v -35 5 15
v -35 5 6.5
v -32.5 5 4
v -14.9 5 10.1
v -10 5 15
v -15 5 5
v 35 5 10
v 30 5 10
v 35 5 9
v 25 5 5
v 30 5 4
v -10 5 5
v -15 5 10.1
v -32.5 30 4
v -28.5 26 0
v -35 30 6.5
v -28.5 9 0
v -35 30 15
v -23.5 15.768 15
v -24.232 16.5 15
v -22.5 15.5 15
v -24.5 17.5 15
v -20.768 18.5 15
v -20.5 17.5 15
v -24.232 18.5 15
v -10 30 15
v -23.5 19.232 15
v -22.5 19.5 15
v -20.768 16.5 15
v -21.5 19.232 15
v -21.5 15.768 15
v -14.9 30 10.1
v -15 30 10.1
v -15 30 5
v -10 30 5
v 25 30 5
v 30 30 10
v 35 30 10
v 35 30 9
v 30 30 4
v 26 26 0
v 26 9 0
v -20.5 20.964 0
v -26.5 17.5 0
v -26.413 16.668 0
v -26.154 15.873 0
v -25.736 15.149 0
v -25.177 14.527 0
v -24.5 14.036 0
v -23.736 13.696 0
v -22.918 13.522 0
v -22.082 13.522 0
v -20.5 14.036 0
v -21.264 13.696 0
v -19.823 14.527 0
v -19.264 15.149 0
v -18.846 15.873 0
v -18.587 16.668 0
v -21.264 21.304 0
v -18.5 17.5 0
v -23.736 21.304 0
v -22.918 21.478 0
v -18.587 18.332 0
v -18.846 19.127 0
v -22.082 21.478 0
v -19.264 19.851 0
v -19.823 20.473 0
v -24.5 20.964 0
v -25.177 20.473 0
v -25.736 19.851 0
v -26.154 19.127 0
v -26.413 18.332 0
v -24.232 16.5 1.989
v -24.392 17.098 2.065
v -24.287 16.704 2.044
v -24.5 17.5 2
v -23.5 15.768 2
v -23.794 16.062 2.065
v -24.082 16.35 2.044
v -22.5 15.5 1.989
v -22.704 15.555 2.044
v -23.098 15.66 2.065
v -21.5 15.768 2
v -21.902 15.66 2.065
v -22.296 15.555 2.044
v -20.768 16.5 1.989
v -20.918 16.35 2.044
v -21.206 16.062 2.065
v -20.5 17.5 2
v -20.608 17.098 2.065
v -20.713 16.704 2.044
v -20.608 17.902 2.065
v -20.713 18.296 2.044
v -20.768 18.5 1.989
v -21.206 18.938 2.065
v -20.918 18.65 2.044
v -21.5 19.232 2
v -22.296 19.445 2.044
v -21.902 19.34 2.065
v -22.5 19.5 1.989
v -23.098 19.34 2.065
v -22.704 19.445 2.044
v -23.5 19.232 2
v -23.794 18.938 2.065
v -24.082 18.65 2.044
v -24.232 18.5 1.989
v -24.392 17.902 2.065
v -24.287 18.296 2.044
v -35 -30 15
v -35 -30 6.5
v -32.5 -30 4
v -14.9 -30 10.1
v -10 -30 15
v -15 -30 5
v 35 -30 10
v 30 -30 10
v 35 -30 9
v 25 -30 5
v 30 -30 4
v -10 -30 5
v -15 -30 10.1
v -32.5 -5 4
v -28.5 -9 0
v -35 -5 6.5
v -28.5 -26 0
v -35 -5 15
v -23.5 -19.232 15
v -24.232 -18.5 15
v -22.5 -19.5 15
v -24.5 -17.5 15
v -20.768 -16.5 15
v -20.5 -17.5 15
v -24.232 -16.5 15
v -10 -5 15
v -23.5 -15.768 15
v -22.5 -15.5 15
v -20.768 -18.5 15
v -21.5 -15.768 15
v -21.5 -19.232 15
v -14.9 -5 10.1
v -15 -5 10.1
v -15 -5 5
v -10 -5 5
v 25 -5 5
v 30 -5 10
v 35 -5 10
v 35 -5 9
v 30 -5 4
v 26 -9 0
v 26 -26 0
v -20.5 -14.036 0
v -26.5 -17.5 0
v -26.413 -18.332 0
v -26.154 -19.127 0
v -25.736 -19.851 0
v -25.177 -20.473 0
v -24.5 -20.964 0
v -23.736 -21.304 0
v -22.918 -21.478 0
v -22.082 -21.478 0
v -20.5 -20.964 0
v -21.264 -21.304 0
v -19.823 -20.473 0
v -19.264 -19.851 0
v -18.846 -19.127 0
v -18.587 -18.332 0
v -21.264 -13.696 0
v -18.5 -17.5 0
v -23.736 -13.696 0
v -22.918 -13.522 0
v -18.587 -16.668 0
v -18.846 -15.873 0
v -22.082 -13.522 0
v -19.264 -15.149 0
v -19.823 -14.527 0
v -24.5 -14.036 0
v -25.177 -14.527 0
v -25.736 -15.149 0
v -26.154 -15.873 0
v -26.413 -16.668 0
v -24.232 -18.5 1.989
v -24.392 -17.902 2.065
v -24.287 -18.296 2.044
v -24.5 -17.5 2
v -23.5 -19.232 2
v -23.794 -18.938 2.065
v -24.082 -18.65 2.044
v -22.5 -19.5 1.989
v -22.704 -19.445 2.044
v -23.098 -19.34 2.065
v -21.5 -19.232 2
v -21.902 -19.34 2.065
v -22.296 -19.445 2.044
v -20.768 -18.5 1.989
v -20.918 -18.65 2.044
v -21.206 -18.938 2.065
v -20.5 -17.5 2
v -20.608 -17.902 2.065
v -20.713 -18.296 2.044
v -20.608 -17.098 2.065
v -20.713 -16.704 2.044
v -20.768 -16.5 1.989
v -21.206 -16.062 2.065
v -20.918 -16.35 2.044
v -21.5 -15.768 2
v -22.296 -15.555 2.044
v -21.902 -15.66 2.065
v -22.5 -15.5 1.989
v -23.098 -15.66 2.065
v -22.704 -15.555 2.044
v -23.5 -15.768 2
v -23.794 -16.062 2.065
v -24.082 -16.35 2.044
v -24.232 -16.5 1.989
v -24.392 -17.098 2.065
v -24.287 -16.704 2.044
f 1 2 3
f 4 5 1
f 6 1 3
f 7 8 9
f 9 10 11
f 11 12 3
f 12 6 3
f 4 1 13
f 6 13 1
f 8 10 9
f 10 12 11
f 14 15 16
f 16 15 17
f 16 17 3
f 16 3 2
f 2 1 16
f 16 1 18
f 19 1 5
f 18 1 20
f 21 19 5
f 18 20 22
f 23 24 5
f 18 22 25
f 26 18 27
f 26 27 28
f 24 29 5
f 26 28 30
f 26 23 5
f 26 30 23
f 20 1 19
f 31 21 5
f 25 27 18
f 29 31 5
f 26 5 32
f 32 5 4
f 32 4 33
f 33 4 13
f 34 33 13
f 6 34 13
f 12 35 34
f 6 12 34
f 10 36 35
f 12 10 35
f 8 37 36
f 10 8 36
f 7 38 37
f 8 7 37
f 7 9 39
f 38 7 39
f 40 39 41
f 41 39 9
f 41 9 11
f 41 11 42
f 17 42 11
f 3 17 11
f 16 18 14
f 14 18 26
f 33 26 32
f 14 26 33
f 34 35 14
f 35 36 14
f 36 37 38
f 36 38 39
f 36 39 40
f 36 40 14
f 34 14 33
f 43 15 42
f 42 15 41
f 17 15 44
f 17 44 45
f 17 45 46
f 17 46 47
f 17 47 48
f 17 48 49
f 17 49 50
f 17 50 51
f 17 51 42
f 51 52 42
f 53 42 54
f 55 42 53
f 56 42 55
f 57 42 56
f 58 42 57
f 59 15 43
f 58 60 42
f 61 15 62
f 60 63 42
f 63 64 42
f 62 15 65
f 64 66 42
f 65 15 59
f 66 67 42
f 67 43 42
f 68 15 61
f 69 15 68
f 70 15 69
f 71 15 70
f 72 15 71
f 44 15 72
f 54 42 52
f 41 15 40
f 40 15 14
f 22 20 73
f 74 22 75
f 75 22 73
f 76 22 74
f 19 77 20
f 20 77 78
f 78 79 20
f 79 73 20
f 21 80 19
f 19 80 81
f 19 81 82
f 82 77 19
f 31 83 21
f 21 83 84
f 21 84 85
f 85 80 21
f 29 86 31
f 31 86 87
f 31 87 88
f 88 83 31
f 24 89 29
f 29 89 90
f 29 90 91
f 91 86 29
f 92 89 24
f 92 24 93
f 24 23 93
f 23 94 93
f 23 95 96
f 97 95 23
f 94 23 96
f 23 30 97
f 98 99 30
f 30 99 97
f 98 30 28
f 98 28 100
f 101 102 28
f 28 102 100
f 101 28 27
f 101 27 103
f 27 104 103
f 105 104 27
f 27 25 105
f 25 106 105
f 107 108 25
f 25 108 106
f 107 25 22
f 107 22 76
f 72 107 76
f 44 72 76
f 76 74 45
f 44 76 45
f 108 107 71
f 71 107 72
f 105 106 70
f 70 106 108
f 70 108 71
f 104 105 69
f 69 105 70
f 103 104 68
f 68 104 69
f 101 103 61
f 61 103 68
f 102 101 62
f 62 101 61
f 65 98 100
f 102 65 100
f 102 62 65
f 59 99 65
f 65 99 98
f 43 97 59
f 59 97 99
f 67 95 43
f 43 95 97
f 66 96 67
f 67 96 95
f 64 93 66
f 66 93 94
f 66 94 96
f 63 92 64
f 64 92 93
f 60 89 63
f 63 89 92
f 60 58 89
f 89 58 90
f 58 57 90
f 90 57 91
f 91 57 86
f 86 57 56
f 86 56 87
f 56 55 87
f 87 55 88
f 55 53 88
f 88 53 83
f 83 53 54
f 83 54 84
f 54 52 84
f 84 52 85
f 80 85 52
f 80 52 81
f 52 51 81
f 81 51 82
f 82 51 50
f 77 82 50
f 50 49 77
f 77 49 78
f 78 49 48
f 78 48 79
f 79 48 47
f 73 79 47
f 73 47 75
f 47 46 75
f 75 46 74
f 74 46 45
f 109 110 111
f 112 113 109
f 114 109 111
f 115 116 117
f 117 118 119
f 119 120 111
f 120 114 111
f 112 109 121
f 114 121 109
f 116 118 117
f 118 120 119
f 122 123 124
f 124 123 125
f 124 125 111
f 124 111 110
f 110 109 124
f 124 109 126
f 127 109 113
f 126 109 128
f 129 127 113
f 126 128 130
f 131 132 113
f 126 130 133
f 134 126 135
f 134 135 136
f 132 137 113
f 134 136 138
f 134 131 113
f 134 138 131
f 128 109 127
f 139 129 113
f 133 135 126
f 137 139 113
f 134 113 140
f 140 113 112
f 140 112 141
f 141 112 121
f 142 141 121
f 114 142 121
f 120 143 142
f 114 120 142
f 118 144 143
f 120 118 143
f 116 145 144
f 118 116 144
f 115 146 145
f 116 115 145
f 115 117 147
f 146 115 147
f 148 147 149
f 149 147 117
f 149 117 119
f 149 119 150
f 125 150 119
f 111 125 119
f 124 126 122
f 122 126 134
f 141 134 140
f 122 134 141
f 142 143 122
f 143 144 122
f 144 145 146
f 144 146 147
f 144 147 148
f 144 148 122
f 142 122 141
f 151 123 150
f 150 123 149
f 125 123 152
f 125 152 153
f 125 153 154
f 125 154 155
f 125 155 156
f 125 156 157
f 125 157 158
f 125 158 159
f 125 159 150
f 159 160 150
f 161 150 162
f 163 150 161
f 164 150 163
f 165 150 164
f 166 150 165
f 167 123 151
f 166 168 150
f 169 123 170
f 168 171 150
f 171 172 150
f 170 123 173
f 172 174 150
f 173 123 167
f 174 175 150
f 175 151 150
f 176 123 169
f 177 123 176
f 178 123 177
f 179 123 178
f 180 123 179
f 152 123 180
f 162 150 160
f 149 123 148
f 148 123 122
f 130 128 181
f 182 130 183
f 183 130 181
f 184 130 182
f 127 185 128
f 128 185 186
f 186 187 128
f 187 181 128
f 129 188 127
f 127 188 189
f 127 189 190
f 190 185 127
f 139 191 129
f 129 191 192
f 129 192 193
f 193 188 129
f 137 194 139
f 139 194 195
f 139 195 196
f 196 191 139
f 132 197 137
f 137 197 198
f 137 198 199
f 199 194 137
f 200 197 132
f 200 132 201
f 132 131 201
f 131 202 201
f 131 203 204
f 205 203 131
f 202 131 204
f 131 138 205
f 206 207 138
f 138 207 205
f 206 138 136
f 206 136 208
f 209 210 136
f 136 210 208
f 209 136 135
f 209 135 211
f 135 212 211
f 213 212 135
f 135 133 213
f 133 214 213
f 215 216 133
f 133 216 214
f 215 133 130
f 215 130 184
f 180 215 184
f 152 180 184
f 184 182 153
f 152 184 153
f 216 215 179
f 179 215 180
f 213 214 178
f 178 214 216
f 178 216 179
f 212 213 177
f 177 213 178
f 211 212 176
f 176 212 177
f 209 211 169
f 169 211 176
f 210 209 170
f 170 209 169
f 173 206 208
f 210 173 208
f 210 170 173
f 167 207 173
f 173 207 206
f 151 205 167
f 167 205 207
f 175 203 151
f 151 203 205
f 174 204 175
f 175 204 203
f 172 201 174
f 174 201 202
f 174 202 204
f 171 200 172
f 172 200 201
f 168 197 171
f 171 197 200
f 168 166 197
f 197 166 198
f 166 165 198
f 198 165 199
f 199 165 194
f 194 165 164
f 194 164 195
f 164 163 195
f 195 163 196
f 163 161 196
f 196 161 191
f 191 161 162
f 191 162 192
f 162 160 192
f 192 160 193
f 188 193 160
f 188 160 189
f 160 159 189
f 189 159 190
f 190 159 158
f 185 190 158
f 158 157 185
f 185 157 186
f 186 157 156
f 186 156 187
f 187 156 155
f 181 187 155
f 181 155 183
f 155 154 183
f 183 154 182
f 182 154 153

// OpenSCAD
// Bracket for storing boat rear deck cover support

// q=0 -> chamfer to +y,+z
// q=1 -> chamfer to -y,+z
// q=2 -> chamfer to -y,-z
// q=3 -> chamfer to +y,-z
module chamferX(p, l, w, q, d)
{
  xl = abs(l);
  xo = min(l,0);
  translate(p)
    rotate([45+q*90,0,0])
      translate([xo-d,0,-w])
        cube(size=[xl+2*d,w/sqrt(2),w*2]);
}

// q=0 -> chamfer to +x,+z
// q=1 -> chamfer to -x,+z
// q=2 -> chamfer to -x,-z
// q=3 -> chamfer to +x,-z
module chamferY(p, l, w, q, d)
{
  yl = abs(l);
  yo = min(l,0);
  translate(p)
    rotate([0,-45-q*90,0])
      translate([0,yo-d,-w])
        cube(size=[w/sqrt(2),yl+2*d,w*2]);
}

// q=0 -> chamfer to +x,+y
// q=1 -> chamfer to -x,+y
// q=2 -> chamfer to -y,-y
// q=3 -> chamfer to +y,-y
module chamferZ(p, l, w, q, d)
{
  zl = abs(l);
  zo = min(l,0);
  translate(p)
    rotate([0,0,45+q*90])
      translate([0,-w,zo-d])
        cube(size=[w/sqrt(2),w*2,zl+2*d]);
}


// Y-axis chamfer located on/ending at inner corner
// q=0 -> chamfer to +z
// q=1 -> chamfer to -x
// q=2 -> chamfer to -z
// q=3 -> chamfer to +x
module chamferYint(p, l, w, q, d)
{
  yl = abs(l);
  yo = min(l,0);
  translate(p)
    rotate([0,-45-q*90,0])
      translate([0,yo-d,0])
        cube(size=[w*sqrt(2),yl+2*d,w*sqrt(2)]);
}



module bracket(lo, wo, ho, li, hi, le, hd, d)
{
  co = ho - 2*hi -1 ;
  difference()
  {
    cube(size=[lo, wo, ho]);
      translate([lo-li-le,-d,ho-hi]) cube([lo,wo+2*d,hi+d]);
      translate([lo-li-le-hi,-d,ho-hi*2]) cube([li,wo+2*d,hi+d]);
      chamferYint([lo-le-hi,0,ho-hi*2], wo, hi, 0, d);
      chamferYint([lo-li-le-hi,0,ho-hi], wo, hi, 3, d);
      chamferX([0,0,0], lo, co, 0, d);
      chamferX([0,wo,0], lo, co, 1, d);
      chamferY([0,0,0], lo, co+hi*0.5, 0, d);
      chamferY([lo,0,0], wo, co+hi, 1, d);
      translate([wo/2,wo/2,-d]) cylinder(r=hd/2, h=ho+d*2, $fa=30, $fs=0.25);
      translate([wo/2,wo/2,-d]) cylinder(r1=hd+d, r2=0, h=hd+d, $fs=0.25);
  }
}


// Top level objects


//translate([10,20,0]) sphere(r=2, $fn=12);

//chamferZ([10,20,0], -30, 5, 1, 0.5);

//chamferYint([10,20,0], -30, 5, 3, 0.5);

lenoverall  = 70;
widoverall  = 25;
hgtoverall  = 15;
leninternal = 40;
hgtinternal = 5;
lenextra    = 5;
holedia     = 4;

translate([-lenoverall/2, 5, 0])
  bracket(lenoverall, widoverall, hgtoverall, leninternal, hgtinternal, lenextra, holedia, 0.1);
translate([-lenoverall/2, -widoverall-5, 0])
  bracket(lenoverall, widoverall, hgtoverall, leninternal, hgtinternal, lenextra, holedia, 0.1);
